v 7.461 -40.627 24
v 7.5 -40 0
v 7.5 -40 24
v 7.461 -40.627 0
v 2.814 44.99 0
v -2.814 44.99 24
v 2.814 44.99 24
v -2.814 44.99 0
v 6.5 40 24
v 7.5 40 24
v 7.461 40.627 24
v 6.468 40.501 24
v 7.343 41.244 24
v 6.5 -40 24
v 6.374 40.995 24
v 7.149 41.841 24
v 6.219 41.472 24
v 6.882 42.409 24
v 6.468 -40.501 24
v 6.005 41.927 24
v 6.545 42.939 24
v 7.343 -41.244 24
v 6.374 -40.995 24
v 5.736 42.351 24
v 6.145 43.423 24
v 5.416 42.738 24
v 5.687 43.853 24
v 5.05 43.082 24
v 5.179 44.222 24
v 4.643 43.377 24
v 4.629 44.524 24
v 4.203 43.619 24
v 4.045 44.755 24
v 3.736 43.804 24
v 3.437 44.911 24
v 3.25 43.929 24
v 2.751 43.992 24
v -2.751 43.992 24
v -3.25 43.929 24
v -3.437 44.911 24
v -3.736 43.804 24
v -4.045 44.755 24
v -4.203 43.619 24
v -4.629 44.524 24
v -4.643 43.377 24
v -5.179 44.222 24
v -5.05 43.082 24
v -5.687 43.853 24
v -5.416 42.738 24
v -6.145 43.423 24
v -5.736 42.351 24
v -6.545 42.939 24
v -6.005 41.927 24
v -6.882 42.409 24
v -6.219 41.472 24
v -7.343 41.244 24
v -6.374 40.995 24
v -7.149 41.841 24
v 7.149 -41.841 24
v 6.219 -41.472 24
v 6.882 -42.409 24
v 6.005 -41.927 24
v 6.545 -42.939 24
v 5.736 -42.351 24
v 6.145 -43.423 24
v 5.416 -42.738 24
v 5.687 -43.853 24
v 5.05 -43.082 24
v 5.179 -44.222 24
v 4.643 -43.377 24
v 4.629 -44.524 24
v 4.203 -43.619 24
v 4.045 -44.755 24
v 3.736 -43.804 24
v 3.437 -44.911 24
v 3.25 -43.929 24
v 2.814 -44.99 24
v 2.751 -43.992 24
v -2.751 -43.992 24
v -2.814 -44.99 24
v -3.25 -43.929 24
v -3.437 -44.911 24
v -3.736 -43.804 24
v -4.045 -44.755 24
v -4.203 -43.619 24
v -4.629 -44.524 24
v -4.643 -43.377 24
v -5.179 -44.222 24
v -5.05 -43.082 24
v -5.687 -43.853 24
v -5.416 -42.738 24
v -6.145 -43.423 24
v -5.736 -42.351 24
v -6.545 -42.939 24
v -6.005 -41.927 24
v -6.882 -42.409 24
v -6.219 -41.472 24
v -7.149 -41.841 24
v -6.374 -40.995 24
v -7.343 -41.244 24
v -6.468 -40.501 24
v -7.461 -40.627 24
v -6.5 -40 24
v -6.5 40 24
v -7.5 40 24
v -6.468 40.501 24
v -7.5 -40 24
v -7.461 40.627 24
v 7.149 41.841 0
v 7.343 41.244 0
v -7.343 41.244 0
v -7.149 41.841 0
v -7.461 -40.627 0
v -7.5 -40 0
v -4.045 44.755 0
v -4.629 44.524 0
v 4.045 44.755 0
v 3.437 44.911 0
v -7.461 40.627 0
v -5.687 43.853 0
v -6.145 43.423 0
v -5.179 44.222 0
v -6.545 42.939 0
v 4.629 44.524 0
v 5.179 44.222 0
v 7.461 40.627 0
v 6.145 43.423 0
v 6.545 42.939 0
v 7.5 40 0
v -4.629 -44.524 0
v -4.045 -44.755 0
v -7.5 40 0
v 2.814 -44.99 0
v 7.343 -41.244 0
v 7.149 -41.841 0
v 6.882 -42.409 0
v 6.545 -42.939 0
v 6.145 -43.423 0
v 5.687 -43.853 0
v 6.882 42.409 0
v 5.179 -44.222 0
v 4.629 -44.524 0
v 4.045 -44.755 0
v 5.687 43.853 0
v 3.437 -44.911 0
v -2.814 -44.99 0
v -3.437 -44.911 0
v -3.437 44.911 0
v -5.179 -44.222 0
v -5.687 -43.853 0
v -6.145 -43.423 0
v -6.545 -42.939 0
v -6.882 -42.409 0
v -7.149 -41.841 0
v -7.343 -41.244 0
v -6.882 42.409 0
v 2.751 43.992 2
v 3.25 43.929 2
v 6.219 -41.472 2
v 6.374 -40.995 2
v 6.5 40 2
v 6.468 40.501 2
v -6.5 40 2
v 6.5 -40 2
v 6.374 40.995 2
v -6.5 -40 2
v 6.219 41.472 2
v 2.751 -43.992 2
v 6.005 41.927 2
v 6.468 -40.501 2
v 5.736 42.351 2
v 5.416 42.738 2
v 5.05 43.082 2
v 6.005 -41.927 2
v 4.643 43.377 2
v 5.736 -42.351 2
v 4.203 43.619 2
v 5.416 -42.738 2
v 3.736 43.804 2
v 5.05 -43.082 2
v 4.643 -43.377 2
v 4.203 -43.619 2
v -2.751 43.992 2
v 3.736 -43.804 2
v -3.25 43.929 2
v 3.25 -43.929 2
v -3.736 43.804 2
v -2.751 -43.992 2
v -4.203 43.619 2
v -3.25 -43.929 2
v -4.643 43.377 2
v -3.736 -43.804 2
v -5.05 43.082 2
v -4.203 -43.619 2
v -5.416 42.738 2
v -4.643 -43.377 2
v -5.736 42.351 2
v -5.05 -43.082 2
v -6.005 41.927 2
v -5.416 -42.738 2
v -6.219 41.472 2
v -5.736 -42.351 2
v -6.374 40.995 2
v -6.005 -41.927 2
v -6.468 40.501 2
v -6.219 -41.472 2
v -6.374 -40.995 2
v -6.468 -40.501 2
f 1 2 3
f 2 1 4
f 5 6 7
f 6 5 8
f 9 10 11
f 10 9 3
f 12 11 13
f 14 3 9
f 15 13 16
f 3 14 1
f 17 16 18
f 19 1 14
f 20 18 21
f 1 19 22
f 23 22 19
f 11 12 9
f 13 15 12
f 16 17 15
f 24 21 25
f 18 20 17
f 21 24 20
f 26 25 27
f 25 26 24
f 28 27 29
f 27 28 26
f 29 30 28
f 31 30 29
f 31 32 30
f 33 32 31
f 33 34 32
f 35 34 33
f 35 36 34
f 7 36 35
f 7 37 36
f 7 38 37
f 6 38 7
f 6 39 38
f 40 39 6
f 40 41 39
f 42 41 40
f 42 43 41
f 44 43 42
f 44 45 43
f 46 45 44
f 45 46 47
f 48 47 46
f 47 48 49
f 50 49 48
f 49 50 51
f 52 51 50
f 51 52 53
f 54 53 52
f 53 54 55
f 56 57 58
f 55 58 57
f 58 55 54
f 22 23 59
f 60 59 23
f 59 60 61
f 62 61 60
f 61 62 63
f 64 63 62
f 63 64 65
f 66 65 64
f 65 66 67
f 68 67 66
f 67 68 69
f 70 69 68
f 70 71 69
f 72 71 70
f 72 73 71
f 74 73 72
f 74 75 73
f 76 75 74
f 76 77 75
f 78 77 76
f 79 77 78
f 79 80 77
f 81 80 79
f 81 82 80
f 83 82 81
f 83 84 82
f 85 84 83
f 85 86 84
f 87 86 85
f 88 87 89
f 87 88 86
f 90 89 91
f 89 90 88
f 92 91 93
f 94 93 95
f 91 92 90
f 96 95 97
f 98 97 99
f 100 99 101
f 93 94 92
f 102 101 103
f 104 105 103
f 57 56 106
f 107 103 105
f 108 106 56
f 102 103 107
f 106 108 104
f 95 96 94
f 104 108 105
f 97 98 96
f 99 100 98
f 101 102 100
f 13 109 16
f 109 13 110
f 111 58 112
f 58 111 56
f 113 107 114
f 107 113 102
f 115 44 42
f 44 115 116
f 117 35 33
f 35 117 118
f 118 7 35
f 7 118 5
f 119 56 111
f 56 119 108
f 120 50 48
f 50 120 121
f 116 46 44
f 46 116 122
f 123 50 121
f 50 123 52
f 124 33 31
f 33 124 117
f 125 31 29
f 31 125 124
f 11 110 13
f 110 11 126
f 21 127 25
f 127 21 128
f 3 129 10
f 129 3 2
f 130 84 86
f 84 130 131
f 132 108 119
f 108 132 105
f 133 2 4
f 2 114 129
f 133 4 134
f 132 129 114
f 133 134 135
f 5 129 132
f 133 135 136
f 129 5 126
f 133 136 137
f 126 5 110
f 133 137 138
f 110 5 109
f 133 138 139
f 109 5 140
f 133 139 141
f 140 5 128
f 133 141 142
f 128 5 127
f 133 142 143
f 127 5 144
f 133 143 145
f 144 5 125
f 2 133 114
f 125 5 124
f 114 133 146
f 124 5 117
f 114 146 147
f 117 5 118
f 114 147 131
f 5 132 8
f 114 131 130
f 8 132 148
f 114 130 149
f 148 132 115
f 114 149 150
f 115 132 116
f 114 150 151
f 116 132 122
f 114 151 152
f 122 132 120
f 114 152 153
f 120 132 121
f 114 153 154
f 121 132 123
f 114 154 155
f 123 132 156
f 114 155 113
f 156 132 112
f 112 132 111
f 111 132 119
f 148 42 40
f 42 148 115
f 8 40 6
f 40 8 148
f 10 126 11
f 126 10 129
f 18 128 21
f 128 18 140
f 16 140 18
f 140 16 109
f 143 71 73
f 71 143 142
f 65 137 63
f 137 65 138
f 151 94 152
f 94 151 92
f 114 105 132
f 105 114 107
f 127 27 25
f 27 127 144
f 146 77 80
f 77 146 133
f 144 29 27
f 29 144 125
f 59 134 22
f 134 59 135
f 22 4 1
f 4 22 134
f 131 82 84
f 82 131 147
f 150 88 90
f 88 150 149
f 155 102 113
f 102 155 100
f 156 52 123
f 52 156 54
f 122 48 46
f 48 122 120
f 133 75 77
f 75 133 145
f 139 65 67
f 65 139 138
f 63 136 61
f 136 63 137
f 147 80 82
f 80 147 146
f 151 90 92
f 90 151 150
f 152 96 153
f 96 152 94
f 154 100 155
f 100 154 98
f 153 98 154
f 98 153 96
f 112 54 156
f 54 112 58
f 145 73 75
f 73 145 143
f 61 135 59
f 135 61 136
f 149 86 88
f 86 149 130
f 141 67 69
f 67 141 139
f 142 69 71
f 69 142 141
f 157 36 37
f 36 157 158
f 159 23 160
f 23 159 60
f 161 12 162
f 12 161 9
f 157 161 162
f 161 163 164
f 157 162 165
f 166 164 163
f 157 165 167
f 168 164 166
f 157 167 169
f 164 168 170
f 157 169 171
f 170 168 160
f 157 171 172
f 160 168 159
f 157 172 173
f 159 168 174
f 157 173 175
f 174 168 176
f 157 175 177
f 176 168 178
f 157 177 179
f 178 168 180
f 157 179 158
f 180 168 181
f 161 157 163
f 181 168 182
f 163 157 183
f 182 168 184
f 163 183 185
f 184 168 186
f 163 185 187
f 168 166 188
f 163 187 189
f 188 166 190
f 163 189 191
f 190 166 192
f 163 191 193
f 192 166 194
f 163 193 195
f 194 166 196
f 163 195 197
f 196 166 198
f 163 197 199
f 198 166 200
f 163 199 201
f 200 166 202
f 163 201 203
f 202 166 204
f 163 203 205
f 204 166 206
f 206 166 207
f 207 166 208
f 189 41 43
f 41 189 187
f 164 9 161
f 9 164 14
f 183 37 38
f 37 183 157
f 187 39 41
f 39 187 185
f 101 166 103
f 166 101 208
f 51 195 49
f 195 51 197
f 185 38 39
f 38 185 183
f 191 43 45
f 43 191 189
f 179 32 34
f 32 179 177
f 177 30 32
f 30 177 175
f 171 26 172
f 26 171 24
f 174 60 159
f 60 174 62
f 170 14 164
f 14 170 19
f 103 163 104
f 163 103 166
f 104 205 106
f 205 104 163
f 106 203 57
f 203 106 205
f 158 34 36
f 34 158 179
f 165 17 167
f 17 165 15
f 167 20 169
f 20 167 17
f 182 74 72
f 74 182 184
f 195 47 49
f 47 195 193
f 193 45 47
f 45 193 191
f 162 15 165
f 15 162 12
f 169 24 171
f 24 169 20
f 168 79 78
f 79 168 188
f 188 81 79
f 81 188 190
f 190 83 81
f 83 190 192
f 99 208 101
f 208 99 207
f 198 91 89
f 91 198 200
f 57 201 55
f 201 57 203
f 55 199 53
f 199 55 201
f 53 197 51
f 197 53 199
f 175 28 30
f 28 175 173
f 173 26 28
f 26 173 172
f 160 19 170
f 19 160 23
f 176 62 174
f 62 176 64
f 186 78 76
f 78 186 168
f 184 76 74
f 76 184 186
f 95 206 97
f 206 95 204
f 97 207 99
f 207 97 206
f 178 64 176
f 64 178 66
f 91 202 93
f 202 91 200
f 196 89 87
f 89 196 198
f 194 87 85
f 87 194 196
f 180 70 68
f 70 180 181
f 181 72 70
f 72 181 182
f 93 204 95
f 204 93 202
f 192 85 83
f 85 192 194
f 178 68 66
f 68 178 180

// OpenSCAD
$fn = 50;


difference() {
	union() {
		hull() {
			translate(v = [-2.5000000000, 40.0000000000, 0]) {
				cylinder(h = 24, r = 5);
			}
			translate(v = [2.5000000000, 40.0000000000, 0]) {
				cylinder(h = 24, r = 5);
			}
			translate(v = [-2.5000000000, -40.0000000000, 0]) {
				cylinder(h = 24, r = 5);
			}
			translate(v = [2.5000000000, -40.0000000000, 0]) {
				cylinder(h = 24, r = 5);
			}
		}
	}
	union() {
		translate(v = [0, 0, 2]) {
			hull() {
				translate(v = [-2.5000000000, 40.0000000000, 0]) {
					cylinder(h = 22, r = 4);
				}
				translate(v = [2.5000000000, 40.0000000000, 0]) {
					cylinder(h = 22, r = 4);
				}
				translate(v = [-2.5000000000, -40.0000000000, 0]) {
					cylinder(h = 22, r = 4);
				}
				translate(v = [2.5000000000, -40.0000000000, 0]) {
					cylinder(h = 22, r = 4);
				}
			}
		}
	}
}
